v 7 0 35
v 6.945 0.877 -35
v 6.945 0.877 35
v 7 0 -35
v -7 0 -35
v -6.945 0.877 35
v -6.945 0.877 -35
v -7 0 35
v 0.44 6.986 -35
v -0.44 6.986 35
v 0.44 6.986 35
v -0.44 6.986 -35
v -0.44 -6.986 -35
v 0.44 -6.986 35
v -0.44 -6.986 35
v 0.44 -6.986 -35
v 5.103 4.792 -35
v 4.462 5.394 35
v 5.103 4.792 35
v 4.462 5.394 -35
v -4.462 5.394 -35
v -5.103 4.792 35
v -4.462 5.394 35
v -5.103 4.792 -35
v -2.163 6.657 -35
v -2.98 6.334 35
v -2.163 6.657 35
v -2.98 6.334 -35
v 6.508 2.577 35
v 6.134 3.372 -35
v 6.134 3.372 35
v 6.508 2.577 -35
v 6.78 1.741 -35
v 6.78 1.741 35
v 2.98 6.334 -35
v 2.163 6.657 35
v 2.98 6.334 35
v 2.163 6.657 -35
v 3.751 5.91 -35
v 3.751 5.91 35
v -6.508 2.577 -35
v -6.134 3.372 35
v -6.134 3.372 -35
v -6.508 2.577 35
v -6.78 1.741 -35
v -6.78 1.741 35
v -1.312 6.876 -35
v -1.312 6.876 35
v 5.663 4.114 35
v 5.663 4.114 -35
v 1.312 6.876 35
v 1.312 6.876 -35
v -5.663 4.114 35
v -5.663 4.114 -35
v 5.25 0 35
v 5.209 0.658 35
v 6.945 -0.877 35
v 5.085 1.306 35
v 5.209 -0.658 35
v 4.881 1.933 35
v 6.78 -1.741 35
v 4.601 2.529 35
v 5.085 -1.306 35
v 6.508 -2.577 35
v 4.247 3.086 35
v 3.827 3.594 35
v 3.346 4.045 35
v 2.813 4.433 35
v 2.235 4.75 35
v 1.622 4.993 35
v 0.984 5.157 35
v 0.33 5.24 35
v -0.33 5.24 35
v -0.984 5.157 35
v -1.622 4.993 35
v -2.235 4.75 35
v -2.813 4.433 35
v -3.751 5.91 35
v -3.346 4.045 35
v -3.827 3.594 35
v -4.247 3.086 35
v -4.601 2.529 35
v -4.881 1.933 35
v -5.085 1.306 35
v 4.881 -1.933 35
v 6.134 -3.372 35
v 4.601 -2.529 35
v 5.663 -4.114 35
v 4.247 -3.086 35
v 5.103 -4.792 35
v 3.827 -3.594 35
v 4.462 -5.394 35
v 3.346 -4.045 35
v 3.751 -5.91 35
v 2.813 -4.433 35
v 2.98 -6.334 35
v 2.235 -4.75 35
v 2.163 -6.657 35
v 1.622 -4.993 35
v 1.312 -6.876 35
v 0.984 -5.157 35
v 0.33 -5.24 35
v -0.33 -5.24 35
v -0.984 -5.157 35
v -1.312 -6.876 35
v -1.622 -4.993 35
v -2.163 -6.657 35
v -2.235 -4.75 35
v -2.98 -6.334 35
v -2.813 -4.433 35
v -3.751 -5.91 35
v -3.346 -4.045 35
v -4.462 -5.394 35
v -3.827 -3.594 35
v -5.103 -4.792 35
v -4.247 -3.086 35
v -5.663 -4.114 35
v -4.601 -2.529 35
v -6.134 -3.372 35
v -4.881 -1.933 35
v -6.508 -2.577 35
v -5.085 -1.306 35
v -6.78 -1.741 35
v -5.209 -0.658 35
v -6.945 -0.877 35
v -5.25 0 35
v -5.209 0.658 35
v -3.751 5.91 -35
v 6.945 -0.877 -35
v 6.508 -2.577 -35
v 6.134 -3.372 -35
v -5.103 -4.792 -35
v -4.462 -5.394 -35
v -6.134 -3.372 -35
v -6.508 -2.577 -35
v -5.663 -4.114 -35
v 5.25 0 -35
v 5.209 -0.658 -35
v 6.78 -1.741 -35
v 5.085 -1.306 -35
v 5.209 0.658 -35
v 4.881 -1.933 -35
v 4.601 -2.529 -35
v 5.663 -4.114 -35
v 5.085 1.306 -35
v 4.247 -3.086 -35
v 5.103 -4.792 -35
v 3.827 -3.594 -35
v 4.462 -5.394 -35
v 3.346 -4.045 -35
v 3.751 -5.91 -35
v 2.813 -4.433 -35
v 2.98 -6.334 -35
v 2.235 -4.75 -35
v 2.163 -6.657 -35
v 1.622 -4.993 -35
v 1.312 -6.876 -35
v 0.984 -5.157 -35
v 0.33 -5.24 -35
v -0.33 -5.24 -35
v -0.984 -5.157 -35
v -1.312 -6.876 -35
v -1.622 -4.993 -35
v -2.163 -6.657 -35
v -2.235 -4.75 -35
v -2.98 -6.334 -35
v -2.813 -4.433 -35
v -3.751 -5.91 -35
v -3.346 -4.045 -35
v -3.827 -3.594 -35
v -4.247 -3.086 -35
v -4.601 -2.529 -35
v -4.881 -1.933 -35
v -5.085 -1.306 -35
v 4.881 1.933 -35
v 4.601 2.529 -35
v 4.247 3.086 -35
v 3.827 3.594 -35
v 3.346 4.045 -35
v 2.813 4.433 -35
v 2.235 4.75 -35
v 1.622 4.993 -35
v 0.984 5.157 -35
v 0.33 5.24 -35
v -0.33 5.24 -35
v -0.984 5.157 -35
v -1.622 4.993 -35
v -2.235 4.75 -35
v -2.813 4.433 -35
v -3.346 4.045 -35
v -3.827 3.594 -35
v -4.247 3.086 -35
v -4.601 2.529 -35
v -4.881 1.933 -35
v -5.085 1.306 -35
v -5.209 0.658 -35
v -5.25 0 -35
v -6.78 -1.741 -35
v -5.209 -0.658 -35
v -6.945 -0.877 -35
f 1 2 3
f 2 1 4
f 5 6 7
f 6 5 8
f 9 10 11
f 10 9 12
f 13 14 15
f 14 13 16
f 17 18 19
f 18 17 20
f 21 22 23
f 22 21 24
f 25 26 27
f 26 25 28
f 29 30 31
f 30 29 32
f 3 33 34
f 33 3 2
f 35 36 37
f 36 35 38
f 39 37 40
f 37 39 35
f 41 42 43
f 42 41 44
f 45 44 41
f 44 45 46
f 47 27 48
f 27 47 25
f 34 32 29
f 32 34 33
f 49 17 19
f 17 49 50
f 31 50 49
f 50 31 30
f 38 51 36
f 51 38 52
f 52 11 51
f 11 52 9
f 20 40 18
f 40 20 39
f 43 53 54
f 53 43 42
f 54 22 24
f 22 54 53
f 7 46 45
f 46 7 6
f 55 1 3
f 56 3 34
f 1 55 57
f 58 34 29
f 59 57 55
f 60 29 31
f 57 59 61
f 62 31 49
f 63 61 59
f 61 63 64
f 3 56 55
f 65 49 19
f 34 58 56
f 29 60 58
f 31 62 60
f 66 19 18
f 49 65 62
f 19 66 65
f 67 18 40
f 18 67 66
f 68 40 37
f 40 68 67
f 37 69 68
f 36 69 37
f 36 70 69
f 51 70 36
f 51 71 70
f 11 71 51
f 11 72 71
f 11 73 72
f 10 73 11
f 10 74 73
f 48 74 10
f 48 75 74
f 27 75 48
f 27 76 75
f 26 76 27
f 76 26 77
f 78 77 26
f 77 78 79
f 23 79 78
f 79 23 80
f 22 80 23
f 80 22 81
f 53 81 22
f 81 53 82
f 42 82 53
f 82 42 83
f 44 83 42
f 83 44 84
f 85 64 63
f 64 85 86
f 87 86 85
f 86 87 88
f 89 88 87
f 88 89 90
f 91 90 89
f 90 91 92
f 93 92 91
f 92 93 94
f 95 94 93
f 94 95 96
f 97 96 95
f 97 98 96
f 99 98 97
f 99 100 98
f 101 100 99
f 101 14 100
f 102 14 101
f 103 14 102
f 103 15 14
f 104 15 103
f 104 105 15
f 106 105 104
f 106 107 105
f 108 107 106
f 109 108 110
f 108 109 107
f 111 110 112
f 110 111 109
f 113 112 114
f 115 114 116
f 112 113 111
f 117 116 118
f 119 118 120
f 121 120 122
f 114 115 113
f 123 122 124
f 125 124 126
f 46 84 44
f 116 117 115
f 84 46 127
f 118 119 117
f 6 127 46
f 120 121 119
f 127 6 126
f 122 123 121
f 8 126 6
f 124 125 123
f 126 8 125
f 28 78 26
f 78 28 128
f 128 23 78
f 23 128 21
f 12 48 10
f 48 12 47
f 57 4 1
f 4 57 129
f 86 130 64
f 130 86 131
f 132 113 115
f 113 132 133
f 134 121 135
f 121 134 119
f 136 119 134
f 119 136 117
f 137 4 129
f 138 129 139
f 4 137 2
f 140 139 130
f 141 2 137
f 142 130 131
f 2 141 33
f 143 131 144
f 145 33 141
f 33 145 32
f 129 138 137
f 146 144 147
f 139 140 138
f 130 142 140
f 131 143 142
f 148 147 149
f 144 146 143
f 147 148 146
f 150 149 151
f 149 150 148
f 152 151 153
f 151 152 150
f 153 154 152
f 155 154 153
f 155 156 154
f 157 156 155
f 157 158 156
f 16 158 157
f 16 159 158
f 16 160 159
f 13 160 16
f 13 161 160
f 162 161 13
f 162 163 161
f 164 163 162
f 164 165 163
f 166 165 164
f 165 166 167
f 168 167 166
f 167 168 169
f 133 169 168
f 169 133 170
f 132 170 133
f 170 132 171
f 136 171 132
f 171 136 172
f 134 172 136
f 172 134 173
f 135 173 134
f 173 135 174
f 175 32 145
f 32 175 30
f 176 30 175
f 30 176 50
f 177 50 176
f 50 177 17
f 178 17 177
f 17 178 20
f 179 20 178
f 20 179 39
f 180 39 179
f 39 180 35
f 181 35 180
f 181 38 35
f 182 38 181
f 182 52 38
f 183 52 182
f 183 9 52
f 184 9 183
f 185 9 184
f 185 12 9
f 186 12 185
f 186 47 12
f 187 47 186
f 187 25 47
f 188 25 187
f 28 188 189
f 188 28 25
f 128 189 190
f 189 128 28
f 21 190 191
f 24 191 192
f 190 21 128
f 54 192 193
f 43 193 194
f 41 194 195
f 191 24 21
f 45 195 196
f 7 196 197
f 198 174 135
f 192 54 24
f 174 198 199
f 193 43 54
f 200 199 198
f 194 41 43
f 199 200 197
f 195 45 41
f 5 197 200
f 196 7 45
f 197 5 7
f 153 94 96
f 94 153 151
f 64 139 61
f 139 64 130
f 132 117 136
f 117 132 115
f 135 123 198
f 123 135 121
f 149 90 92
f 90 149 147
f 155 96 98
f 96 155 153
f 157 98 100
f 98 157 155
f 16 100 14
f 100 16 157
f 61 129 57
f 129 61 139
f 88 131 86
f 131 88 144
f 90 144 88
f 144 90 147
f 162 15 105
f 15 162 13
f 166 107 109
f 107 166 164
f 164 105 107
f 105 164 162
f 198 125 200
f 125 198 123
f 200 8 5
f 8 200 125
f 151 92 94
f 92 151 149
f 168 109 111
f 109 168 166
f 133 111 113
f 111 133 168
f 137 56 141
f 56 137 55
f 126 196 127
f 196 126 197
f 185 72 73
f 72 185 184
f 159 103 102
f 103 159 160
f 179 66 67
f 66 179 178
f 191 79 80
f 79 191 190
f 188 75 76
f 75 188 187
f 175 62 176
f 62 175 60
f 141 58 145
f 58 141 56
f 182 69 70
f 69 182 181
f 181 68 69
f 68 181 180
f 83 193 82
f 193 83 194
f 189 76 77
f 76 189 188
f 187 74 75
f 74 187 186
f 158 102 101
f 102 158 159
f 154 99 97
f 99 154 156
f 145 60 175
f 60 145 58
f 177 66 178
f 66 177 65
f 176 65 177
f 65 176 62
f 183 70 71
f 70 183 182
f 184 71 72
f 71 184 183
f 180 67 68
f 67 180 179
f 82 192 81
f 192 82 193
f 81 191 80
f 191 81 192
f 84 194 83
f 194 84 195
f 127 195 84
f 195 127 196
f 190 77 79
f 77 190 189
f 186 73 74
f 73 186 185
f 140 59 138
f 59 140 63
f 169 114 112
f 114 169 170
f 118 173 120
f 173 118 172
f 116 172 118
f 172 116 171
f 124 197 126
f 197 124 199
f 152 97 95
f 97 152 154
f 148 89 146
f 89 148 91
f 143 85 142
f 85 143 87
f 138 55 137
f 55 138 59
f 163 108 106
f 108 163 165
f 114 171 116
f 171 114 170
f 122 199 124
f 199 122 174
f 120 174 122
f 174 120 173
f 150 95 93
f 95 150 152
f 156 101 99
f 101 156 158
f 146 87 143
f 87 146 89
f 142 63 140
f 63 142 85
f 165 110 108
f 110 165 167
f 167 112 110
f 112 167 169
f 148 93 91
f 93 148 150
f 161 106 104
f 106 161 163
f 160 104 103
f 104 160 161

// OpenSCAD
$fn = 50;


difference() {
	union() {
		translate(v = [0, 0, -35.0000000000]) {
			cylinder(h = 70, r = 7.0000000000);
		}
	}
	union() {
		translate(v = [0, 0, -100.0000000000]) {
			cylinder(h = 200, r = 5.2500000000);
		}
	}
}
